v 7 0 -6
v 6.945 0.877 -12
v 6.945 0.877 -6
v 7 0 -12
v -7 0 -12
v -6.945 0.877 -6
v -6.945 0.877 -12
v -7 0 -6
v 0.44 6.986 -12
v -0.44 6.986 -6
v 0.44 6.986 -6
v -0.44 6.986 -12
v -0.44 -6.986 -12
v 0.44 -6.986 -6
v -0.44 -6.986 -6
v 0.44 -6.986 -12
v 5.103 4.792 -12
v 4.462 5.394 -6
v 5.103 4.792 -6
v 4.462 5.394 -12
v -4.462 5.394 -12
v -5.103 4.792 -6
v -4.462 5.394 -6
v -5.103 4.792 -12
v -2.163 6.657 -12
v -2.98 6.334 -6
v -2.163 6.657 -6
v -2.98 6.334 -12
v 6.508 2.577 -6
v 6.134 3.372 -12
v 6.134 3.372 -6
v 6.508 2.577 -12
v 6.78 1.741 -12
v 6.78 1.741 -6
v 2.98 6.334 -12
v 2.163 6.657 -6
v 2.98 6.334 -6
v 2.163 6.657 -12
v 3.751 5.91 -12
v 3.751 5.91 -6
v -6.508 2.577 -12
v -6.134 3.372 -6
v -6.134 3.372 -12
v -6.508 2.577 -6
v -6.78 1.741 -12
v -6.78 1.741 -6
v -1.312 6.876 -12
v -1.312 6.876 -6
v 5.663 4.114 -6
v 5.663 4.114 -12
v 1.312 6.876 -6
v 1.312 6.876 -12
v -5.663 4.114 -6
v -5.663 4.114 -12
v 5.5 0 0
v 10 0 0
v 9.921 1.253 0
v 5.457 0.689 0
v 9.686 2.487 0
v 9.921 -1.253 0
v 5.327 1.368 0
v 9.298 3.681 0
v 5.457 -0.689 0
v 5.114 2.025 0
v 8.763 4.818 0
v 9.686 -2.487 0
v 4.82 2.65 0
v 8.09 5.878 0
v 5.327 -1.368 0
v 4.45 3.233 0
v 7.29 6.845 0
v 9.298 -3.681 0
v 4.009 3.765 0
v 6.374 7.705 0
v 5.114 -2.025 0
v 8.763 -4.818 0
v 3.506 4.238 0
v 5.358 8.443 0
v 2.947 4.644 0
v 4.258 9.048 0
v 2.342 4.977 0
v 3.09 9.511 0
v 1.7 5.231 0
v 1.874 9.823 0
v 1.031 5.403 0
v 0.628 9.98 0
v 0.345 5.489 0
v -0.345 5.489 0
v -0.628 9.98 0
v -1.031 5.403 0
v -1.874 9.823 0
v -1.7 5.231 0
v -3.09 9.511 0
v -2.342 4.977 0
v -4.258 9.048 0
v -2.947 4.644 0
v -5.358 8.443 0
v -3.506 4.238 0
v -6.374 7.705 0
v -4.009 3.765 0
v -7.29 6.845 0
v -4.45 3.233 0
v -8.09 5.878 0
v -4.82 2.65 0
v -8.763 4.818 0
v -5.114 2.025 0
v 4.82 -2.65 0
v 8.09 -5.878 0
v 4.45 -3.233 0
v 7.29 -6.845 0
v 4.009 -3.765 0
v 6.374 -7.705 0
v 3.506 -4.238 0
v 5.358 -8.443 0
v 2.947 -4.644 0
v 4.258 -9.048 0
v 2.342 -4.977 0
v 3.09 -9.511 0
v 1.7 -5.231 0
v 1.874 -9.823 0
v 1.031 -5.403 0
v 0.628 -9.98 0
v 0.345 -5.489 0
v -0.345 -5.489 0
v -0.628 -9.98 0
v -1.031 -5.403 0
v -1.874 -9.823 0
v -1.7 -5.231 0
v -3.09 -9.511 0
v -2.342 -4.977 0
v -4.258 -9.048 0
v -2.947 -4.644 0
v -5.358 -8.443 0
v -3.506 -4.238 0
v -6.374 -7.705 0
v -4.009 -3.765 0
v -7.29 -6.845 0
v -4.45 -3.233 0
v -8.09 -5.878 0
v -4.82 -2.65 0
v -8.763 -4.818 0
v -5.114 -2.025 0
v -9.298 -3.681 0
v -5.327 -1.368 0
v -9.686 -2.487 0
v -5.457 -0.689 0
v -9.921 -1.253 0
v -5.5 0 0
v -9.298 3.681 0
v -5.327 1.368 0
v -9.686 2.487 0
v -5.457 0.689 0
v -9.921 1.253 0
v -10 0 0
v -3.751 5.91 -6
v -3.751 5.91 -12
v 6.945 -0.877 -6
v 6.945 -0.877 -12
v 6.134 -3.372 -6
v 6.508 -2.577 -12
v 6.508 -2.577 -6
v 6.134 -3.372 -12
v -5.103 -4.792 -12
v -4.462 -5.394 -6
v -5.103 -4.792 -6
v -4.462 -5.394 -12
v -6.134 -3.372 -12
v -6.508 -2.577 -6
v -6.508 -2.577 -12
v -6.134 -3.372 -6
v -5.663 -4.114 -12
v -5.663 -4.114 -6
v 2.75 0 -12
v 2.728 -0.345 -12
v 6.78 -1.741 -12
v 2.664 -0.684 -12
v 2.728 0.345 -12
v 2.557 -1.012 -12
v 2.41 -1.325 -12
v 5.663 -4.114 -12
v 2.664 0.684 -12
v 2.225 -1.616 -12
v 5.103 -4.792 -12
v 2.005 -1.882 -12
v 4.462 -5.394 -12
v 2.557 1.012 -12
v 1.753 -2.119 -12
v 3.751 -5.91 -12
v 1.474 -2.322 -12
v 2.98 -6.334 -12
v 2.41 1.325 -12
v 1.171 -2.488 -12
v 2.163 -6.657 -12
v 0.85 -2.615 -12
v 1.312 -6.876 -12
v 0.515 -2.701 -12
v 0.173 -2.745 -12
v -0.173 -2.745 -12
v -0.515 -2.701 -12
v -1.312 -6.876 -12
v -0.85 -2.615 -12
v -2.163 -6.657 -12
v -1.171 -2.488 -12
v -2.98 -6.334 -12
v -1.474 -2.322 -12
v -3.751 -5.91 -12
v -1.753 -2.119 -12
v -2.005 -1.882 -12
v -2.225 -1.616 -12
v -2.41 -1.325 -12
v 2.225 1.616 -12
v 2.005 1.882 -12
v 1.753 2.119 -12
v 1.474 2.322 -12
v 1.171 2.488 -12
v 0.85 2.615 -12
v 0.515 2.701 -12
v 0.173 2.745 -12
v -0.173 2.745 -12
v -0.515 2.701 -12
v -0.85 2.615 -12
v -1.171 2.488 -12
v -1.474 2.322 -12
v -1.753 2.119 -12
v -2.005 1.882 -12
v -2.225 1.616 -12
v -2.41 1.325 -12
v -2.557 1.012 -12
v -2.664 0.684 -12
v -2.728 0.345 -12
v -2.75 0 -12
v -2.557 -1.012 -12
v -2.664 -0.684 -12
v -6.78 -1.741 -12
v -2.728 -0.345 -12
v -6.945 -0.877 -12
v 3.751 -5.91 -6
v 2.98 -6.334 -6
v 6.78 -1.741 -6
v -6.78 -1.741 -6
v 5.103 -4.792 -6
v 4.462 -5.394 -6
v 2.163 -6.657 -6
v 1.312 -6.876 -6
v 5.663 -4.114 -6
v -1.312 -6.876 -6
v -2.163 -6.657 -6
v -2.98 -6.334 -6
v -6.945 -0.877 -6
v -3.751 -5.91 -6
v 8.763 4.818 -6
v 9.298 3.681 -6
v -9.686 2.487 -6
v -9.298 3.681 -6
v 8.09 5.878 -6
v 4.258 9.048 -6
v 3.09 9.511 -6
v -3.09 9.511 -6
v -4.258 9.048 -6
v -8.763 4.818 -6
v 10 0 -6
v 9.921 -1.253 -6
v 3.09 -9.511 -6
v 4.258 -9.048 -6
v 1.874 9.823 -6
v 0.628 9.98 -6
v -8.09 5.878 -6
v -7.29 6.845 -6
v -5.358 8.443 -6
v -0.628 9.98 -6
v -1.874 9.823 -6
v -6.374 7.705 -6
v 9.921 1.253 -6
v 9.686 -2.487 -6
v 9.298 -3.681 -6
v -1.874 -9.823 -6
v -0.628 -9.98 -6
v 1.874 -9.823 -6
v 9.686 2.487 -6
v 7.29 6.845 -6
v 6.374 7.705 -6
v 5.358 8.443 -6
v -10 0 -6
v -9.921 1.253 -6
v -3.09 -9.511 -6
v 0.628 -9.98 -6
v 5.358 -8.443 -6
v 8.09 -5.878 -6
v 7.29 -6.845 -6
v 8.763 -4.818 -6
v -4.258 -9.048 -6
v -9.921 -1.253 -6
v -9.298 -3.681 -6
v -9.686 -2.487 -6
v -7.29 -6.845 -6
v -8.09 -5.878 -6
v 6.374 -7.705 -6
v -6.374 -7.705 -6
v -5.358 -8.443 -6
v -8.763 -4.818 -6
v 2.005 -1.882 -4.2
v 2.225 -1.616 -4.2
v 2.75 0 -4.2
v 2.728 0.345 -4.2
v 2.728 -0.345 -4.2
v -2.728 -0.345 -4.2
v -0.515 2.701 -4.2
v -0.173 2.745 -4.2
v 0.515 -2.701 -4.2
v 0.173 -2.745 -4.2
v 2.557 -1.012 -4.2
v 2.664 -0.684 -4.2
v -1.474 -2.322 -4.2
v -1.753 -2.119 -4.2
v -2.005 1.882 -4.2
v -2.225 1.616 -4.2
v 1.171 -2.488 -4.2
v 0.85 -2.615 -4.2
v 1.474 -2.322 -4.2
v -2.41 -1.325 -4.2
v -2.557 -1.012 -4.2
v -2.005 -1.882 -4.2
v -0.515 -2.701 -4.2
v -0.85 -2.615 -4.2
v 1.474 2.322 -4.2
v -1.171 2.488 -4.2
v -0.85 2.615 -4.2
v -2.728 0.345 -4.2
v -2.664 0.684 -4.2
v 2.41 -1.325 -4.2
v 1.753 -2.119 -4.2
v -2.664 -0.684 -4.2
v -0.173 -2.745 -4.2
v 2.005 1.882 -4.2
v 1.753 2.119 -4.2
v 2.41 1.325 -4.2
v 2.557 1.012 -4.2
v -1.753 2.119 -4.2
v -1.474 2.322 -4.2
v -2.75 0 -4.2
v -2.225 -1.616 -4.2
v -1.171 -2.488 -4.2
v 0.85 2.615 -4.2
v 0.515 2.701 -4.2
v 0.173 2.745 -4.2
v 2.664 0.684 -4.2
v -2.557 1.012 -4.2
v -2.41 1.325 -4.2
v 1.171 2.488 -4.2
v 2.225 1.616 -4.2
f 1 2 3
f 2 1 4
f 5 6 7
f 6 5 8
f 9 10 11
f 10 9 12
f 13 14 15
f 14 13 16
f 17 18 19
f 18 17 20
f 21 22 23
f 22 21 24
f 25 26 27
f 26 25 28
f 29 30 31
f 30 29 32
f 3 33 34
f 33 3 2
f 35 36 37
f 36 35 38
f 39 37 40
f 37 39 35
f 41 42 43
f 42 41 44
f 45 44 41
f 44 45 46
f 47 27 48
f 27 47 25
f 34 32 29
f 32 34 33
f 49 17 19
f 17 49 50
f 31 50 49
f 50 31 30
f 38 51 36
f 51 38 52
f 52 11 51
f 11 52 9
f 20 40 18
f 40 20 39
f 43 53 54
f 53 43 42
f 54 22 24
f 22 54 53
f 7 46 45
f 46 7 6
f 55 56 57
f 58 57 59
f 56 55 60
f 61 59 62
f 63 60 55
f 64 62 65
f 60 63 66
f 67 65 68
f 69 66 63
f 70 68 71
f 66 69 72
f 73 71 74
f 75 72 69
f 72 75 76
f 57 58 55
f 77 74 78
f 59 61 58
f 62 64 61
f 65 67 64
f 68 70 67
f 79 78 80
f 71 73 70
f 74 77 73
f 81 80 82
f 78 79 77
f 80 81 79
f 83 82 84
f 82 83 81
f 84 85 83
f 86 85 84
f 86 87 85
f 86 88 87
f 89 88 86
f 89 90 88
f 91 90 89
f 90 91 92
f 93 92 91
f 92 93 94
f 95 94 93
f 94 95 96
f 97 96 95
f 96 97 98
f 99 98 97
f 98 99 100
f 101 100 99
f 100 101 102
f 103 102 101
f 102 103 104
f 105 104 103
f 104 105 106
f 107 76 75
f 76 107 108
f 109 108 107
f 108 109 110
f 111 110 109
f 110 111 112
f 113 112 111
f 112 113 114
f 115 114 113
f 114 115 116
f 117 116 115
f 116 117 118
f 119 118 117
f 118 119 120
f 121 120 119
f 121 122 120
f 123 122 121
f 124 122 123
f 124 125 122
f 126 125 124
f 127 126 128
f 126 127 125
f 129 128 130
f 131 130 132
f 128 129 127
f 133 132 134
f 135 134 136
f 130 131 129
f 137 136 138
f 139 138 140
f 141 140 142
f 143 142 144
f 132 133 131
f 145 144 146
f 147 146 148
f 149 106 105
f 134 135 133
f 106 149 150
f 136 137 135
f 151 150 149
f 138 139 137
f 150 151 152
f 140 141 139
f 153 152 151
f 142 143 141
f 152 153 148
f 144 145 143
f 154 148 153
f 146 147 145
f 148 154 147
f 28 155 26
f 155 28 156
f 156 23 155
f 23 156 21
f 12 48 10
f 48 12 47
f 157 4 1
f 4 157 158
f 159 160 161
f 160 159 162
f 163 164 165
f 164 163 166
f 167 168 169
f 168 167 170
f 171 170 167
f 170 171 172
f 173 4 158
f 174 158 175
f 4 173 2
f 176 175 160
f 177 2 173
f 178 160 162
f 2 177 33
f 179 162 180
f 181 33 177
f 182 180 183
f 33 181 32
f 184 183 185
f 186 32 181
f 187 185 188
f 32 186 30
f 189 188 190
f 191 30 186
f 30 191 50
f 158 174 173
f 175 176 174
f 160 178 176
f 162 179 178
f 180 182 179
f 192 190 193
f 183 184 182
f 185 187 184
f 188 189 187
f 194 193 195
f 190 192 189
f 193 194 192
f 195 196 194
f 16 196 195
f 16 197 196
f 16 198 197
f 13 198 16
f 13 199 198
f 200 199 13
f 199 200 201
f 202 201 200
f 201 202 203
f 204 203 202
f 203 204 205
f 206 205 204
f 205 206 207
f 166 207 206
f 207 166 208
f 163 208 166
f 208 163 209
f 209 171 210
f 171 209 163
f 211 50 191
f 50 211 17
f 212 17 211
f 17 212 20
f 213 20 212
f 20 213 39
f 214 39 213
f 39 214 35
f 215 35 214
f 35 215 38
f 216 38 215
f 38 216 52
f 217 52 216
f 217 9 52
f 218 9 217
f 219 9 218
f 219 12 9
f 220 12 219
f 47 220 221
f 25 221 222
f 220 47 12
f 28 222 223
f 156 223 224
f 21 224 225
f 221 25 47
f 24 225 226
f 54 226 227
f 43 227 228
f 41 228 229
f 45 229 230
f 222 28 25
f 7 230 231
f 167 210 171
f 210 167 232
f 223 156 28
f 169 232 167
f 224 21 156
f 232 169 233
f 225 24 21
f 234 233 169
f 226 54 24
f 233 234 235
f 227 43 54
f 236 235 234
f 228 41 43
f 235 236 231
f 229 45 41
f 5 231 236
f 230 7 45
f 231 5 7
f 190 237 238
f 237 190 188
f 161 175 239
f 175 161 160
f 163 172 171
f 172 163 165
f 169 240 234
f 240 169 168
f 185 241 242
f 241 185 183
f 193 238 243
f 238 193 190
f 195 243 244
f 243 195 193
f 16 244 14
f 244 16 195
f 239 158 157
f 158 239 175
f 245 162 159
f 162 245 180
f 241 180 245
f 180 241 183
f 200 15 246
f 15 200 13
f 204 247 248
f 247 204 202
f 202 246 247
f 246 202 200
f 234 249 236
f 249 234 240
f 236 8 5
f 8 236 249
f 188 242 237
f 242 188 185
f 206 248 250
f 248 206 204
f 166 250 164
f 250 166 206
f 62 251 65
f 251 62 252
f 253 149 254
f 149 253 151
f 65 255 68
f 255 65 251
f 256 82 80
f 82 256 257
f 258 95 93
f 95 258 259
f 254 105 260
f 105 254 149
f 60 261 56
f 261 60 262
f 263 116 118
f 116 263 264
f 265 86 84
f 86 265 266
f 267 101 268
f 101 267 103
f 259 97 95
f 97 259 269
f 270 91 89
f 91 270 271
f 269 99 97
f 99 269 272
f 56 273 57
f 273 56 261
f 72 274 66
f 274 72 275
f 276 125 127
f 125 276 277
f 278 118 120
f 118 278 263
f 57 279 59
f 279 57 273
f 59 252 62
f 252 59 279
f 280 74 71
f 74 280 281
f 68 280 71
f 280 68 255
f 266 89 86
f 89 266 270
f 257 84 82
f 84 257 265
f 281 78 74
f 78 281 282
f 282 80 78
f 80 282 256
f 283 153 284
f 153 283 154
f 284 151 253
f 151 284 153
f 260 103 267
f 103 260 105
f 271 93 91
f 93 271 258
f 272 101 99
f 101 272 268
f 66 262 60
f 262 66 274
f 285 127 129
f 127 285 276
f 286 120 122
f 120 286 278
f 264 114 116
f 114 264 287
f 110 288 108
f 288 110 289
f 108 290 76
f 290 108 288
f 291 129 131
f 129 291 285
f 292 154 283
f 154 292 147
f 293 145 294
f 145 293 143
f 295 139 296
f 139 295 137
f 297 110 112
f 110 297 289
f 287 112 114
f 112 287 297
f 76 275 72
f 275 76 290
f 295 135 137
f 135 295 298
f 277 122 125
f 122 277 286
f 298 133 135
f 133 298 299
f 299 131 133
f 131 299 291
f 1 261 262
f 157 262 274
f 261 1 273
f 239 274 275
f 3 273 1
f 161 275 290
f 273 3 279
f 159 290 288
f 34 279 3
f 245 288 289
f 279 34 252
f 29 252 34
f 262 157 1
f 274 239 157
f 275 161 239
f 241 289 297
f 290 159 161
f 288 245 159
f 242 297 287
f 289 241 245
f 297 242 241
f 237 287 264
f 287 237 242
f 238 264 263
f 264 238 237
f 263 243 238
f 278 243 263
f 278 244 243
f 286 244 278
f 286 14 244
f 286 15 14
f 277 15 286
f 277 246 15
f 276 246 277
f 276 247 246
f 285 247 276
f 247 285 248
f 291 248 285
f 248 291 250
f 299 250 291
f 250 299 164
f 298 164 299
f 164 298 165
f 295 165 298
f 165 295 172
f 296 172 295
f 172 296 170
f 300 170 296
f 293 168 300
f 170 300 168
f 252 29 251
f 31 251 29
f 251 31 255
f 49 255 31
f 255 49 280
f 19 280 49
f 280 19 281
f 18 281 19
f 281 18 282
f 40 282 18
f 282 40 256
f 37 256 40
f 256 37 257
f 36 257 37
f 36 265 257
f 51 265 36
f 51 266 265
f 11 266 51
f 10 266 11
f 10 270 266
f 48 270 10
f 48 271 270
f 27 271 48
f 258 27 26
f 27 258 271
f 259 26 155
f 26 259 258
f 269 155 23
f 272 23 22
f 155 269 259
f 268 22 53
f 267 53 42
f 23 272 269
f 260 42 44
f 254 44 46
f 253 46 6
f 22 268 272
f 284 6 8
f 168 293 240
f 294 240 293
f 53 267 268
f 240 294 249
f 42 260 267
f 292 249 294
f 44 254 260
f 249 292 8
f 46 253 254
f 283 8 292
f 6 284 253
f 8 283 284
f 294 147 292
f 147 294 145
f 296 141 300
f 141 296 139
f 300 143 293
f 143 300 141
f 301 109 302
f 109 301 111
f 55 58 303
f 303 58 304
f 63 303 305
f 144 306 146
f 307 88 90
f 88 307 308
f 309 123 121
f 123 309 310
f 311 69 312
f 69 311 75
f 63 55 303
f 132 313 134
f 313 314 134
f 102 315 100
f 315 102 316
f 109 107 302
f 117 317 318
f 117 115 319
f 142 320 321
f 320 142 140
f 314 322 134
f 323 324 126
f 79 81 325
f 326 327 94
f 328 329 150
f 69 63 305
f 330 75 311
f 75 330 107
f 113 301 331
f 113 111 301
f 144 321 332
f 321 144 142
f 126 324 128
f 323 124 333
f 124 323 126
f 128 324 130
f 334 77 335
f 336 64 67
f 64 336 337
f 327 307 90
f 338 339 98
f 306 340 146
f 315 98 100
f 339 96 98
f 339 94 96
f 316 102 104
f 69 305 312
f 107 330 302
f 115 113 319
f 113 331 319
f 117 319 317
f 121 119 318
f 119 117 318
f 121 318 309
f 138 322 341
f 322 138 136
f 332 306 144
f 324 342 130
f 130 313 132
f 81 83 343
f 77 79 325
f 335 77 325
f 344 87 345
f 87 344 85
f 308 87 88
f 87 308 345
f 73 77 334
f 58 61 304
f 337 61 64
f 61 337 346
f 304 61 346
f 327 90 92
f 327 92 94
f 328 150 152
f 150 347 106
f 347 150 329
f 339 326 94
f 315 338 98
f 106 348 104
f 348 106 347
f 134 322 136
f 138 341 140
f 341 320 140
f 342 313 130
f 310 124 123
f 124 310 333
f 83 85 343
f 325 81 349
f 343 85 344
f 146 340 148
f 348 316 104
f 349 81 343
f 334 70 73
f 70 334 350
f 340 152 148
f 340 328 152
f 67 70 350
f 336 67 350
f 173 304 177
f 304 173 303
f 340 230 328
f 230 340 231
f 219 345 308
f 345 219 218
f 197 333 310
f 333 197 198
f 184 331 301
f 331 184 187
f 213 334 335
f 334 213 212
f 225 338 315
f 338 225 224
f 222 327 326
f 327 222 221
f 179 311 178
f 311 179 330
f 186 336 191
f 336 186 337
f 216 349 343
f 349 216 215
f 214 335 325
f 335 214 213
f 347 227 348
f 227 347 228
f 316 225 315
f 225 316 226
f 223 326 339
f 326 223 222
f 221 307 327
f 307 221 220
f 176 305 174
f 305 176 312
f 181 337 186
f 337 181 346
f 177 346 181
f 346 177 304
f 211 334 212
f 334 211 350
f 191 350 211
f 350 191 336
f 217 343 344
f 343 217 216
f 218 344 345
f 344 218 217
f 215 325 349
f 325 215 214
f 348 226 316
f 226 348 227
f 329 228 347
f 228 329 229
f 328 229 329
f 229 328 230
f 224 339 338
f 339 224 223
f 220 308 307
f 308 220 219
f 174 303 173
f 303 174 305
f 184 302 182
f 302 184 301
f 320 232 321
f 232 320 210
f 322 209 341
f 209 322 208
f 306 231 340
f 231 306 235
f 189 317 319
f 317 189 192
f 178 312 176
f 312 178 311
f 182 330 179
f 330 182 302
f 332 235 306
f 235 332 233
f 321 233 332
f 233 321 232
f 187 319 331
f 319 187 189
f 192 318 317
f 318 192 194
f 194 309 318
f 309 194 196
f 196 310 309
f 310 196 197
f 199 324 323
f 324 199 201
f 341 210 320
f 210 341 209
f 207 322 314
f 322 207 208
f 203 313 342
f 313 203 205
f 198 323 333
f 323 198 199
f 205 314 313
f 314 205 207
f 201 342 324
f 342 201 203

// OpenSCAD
$fn = 50;


difference() {
	union() {
		translate(v = [0, 0, -12.0000000000]) {
			cylinder(h = 12, r = 7.0000000000);
		}
		translate(v = [0, 0, -6.0000000000]) {
			cylinder(h = 6, r = 10.0000000000);
		}
	}
	union() {
		translate(v = [0, 0, 0]) {
			rotate(a = [0, 0, 0]) {
				difference() {
					union() {
						#translate(v = [0, 0, -12.0000000000]) {
							cylinder(h = 12, r = 2.2500000000);
						}
						#translate(v = [0, 0, -4.2000000000]) {
							cylinder(h = 4.2000000000, r1 = 2.7500000000, r2 = 5.5000000000);
						}
						#translate(v = [0, 0, -12.0000000000]) {
							cylinder(h = 12, r = 2.7500000000);
						}
						#translate(v = [0, 0, -12.0000000000]) {
							cylinder(h = 12, r = 2.2500000000);
						}
					}
					union();
				}
			}
		}
	}
}
